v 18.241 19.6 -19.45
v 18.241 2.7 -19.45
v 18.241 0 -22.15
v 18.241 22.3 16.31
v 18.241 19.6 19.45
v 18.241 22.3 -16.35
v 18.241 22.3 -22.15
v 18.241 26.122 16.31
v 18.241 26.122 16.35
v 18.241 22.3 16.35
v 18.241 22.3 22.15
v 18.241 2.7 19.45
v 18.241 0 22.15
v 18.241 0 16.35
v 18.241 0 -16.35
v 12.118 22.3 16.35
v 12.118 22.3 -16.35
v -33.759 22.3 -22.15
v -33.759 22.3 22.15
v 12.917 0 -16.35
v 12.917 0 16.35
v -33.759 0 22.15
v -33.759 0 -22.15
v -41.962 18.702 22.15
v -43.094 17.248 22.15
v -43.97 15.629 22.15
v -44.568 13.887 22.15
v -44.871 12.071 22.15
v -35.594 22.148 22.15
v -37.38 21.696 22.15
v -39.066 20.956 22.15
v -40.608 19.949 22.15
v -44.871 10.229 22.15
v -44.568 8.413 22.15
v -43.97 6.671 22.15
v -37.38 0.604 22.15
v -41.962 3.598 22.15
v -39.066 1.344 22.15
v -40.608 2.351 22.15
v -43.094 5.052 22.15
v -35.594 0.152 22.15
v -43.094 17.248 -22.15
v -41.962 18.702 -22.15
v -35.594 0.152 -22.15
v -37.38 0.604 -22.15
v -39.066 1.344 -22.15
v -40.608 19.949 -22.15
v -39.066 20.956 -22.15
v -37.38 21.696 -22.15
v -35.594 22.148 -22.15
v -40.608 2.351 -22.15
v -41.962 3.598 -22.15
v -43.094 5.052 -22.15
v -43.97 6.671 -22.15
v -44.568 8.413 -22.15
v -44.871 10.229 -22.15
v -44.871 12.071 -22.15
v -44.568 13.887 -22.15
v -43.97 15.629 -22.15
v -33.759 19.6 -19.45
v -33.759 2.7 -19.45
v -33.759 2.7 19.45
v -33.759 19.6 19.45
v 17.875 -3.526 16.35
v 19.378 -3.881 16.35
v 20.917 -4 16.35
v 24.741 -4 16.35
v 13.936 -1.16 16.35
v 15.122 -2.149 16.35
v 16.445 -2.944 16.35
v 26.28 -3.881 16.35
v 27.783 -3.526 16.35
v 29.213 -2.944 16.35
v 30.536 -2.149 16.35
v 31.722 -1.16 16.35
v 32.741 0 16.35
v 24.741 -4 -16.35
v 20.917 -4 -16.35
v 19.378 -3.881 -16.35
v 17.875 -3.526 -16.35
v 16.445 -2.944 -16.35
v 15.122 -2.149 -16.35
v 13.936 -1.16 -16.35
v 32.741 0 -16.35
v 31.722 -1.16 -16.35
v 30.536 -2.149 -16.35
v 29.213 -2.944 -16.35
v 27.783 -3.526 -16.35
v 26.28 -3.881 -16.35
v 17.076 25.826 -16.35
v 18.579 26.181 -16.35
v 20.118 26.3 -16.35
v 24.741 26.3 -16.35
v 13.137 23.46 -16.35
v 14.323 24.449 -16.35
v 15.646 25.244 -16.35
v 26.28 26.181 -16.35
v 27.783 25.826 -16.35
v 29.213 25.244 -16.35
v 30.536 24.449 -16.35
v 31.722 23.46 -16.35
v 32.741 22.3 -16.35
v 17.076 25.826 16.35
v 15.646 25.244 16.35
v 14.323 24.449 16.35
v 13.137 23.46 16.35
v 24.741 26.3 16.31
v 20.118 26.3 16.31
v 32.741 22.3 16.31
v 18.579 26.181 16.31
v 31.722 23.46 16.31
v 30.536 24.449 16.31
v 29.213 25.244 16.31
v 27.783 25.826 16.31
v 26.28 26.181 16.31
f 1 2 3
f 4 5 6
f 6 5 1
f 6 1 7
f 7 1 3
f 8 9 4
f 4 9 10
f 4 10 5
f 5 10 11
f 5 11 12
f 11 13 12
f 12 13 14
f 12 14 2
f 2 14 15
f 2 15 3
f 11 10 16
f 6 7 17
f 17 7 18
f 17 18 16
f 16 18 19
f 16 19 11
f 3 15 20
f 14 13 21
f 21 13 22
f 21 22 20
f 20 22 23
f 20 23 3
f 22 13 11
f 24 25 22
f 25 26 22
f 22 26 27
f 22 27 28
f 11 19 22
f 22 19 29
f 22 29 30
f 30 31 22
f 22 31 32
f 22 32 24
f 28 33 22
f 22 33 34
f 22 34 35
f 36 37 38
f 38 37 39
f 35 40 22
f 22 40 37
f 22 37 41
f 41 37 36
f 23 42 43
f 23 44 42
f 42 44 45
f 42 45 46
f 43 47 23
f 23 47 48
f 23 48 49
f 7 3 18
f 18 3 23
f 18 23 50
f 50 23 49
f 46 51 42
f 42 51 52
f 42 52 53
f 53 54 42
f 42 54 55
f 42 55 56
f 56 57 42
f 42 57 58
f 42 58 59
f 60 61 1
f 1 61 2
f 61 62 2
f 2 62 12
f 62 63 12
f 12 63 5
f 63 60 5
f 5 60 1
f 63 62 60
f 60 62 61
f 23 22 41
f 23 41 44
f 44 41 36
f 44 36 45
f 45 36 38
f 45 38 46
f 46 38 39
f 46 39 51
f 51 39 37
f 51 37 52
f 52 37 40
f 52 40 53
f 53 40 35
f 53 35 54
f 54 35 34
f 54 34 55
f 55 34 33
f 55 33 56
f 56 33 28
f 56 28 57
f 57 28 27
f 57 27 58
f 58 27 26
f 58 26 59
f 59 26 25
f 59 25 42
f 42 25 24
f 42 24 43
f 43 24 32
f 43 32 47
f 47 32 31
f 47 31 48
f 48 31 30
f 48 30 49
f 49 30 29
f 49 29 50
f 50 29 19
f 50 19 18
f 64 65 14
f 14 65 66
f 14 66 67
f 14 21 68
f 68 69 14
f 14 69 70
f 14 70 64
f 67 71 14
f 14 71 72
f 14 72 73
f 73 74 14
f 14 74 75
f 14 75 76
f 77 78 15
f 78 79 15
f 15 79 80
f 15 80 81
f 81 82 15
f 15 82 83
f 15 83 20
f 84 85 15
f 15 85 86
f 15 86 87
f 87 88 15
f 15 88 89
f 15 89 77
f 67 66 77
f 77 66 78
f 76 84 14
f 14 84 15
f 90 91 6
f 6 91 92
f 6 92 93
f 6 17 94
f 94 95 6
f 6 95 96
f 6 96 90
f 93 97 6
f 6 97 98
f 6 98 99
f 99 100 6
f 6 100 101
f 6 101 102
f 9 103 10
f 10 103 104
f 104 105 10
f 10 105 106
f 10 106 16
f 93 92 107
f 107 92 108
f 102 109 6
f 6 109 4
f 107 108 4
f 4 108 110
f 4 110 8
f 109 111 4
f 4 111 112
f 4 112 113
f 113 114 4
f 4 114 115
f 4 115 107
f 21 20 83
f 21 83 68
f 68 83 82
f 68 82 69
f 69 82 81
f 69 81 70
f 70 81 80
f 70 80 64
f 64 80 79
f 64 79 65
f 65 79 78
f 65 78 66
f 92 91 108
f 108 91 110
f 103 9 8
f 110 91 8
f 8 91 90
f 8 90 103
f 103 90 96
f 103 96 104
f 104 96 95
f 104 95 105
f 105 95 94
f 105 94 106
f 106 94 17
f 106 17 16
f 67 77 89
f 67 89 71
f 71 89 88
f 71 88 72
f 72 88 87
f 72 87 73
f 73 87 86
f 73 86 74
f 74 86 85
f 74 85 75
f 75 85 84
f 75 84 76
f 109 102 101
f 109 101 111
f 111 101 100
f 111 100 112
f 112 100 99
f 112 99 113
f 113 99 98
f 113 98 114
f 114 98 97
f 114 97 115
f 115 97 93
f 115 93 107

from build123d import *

# Parameters (mm, degrees)
ESQUISSE1_W             = 52
ESQUISSE1_H             = 44.3
BOSS_EXTRU_1_DEPTH      = 22.3
ESQUISSE4_W             = 38.9
ESQUISSE4_H             = 16.9
ENL_V_MAT_EXTRU_2_DEPTH = 52
BOSS_EXTRU_3_DEPTH      = 44.3
ESQUISSE9_W             = 5.32335475
ESQUISSE9_H             = 32.7
BOSS_EXTRU_4_DEPTH      = 4
ESQUISSE10_W            = 32.7
ESQUISSE10_H            = 4
BOSS_EXTRU_5_DEPTH      = 14.5
ESQUISSE11_W            = 6.122616958
ESQUISSE11_H            = 32.7
BOSS_EXTRU_6_DEPTH      = 4
ESQUISSE12_W            = 32.660291113
ESQUISSE12_H            = 4
BOSS_EXTRU_7_DEPTH      = 14.5
CONG_1_R                = 10
CONG_2_R                = 10
CONG_3_R                = 10
CONG_4_R                = 10


with BuildPart() as part:
    # Esquisse1 → Boss.-Extru.1 (new body)
    with BuildSketch(Plane(origin=(0, 0, 0), x_dir=(1, 0, 0), z_dir=(0, 1, 0))):
        with Locations((-7.759163987, 0)):
            Rectangle(ESQUISSE1_W, ESQUISSE1_H)
    extrude(amount=BOSS_EXTRU_1_DEPTH)

    # Esquisse4 → Enlèv. mat.-Extru.2 (cut)
    with BuildSketch(Plane(origin=(18.240836013, 0, 0), x_dir=(0, 0, -1), z_dir=(1, 0, 0))):
        with Locations((0, 11.15)):
            Rectangle(ESQUISSE4_W, ESQUISSE4_H)
    extrude(amount=-ENL_V_MAT_EXTRU_2_DEPTH, mode=Mode.SUBTRACT)

    # Esquisse5 → Boss.-Extru.3 (add)
    with BuildSketch(Plane.XY.offset(22.15)):
        with BuildLine():
            Line((-33.759163987, 22.3), (-33.759163987, 0))
            ThreePointArc((-33.759163987, 0), (-44.909163987, 11.15), (-33.759163987, 22.3))
        make_face()
    extrude(amount=-BOSS_EXTRU_3_DEPTH)

    # Esquisse9 → Boss.-Extru.4 (add)
    with BuildSketch(Plane.XZ):
        with Locations((15.579158638, 0)):
            Rectangle(ESQUISSE9_W, ESQUISSE9_H)
    extrude(amount=BOSS_EXTRU_4_DEPTH)

    # Esquisse10 → Boss.-Extru.5 (add)
    with BuildSketch(Plane(origin=(18.240836013, 0, 0), x_dir=(0, 0, -1), z_dir=(1, 0, 0))):
        with Locations((0, -2)):
            Rectangle(ESQUISSE10_W, ESQUISSE10_H)
    extrude(amount=BOSS_EXTRU_5_DEPTH)

    # Esquisse11 → Boss.-Extru.6 (add)
    with BuildSketch(Plane(origin=(0, 22.3, 0), x_dir=(1, 0, 0), z_dir=(0, 1, 0))):
        with Locations((15.179527534, 0)):
            Rectangle(ESQUISSE11_W, ESQUISSE11_H)
    extrude(amount=BOSS_EXTRU_6_DEPTH)

    # Esquisse12 → Boss.-Extru.7 (add)
    with BuildSketch(Plane(origin=(18.240836013, 0, 0), x_dir=(0, 0, -1), z_dir=(1, 0, 0))):
        with Locations((0.019854443, 24.3)):
            Rectangle(ESQUISSE12_W, ESQUISSE12_H)
    extrude(amount=BOSS_EXTRU_7_DEPTH)

    # Congé1
    # the kernel refuses this fillet: 10 mm, written as the material it takes off along each edge
    with BuildSketch(Plane(origin=(12.917481263, -4, -36.35), x_dir=(1, 0, 0), z_dir=(0, 0, 1))) as cong_1_piece_1:
        with BuildLine():
            CenterArc((8, 10), CONG_1_R, 216.869897646, 53.130102354)
            Line((0, 4), (-0.16, 3.88))
            ThreePointArc((-0.16, 3.88), (-0.2, 2), (-0.2, 0))
            Line((-0.2, 0), (0, -0.2))
            Line((0, -0.2), (8, -0.2))
            Line((8, -0.2), (8, 0))
        make_face()
    extrude(amount=72.7, mode=Mode.SUBTRACT)

    # Congé2
    # the kernel refuses this fillet: 10 mm, written as the material it takes off along each edge
    with BuildSketch(Plane(origin=(12.118219055, 26.3, 36.35), x_dir=(1, 0, 0), z_dir=(0, 0, -1))) as cong_2_piece_1:
        with BuildLine():
            CenterArc((8, 10), CONG_2_R, 216.869897646, 53.130102354)
            Line((0, 4), (-0.16, 3.88))
            ThreePointArc((-0.16, 3.88), (-0.2, 2), (-0.2, 0))
            Line((-0.2, 0), (0, -0.2))
            Line((0, -0.2), (8, -0.2))
            Line((8, -0.2), (8, 0))
        make_face()
    extrude(amount=72.7, mode=Mode.SUBTRACT)

    # Congé3
    # the kernel refuses this fillet: 10 mm, written as the material it takes off along each edge
    with BuildSketch(Plane(origin=(32.740836013, -4, -36.35), x_dir=(-1, 0, 0), z_dir=(0, 0, 1))) as cong_3_piece_1:
        with BuildLine():
            CenterArc((8, -10), CONG_3_R, 90, 53.130102354)
            Line((0, -4), (-0.16, -3.88))
            ThreePointArc((-0.16, -3.88), (-0.2, -2), (-0.2, 0))
            Line((-0.2, 0), (0, 0.2))
            Line((0, 0.2), (8, 0.2))
            Line((8, 0.2), (8, 0))
        make_face()
    extrude(amount=72.7, mode=Mode.SUBTRACT)

    # Congé4
    # the kernel refuses this fillet: 10 mm, written as the material it takes off along each edge
    with BuildSketch(Plane(origin=(32.740836013, 26.3, -36.35), x_dir=(0, -1, 0), z_dir=(0, 0, 1))) as cong_4_piece_1:
        with BuildLine():
            CenterArc((10, -8), CONG_4_R, 126.869897646, 53.130102354)
            Line((0, -8), (-0.2, -8))
            Line((-0.2, -8), (-0.2, 0))
            Line((-0.2, 0), (0, 0.2))
            ThreePointArc((0, 0.2), (2, 0.2), (3.88, 0.16))
            Line((3.88, 0.16), (4, 0))
        make_face()
    extrude(amount=72.660291113, mode=Mode.SUBTRACT)


solid = part.part
